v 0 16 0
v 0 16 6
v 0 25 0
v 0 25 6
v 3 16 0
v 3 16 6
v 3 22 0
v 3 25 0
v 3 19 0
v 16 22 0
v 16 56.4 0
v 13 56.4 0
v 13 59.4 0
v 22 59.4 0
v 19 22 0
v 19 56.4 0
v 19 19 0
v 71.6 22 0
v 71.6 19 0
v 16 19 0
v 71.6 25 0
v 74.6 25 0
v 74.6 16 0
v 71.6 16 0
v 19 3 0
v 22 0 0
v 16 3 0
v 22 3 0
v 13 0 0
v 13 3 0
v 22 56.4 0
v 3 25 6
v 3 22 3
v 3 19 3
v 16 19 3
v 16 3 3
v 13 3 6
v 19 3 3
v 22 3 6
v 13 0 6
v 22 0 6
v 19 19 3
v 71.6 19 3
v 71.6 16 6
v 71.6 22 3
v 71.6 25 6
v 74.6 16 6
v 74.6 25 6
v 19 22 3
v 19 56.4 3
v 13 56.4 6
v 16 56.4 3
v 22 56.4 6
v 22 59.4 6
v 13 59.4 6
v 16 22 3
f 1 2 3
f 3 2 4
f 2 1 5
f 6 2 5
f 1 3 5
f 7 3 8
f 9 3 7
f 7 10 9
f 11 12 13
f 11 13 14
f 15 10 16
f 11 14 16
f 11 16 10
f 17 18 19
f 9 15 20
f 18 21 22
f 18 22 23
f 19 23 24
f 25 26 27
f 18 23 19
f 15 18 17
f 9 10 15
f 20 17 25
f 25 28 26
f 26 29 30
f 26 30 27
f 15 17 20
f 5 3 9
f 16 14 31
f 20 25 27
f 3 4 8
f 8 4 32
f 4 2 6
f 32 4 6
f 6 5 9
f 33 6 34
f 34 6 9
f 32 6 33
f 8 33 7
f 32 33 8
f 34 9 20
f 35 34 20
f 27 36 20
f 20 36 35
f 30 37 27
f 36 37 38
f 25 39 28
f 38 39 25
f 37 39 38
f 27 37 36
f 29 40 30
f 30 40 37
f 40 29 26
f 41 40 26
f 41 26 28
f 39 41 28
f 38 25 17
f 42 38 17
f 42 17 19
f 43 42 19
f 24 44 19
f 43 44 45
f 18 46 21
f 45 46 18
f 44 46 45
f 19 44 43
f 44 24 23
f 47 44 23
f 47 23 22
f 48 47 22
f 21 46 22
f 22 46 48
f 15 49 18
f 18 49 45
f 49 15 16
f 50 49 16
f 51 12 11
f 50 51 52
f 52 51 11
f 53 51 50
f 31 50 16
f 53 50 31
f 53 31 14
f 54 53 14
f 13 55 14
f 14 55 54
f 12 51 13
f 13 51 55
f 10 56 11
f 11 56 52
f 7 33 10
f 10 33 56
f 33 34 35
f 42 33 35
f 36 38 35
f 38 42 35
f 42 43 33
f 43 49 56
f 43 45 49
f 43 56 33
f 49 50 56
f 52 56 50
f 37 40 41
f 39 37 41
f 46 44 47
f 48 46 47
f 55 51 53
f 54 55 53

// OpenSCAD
width = 53.4;
length = 68.6;
thickness = 3;
peg_length = 3*thickness;
height = 3;
w_offset = 19;
l_offset = 16;

translate([0, w_offset, 0]){
	cube([length+2*thickness, thickness, thickness]);
	translate([0,-thickness,0]){
		cube([thickness, peg_length, height+thickness]);
	}
	translate([length+thickness, -thickness, 0]){
		cube([thickness, peg_length, height+thickness]);
	}
}

translate([l_offset, 0, 0]){
	cube([thickness, width+2*thickness, thickness]);
	translate([-thickness,0,0]){
		cube([peg_length, thickness, height+thickness]);
	}
	translate([-thickness, width+thickness, 0]){
		cube([peg_length, thickness, height+thickness]);
	}
}
